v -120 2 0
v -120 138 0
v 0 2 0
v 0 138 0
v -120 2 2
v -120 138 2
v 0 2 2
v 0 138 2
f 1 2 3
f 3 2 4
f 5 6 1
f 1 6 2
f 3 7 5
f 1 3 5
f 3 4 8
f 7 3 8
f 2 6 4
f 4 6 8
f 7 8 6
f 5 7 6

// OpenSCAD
// file: ../pi_mount.scad
module Standoff(h, r1, r2){
  difference() {
    cylinder(h=h, r=r1, $fn=50);
    cylinder(h=h+0.01, r=r2, $fn=50);
  }
}

module PiMount(){
  cube([85, 56, 1]);
  translate([24.05, 16.55, 1]) Standoff(6, 3, 1.5);
  translate([78.55, 44.95, 1]) Standoff(6, 3, 1.5);
}

module RelayMount(height){
  cube([75, 55, 1]);
  inner = 1.4;
  outer = 3;
  translate([3, 3, 1]) Standoff(height, outer, inner);
  translate([72, 3, 1]) Standoff(height, outer, inner);
  translate([3, 52, 1]) Standoff(height, outer, inner);
  translate([72, 52, 1]) Standoff(height, outer, inner);
}

module BarrierStripMount(depth){
  translate([5, 11, -depth]) cylinder(h=depth+0.2, r=2, $fn=50);
  translate([120, 11, -depth]) cylinder(h=depth+0.2, r=2, $fn=50);
}

translate([-62.5, -11, 0]) difference(){
  BarrierStripMount(depth=1.5);
}
// file: ../outlet.scad
module OutletMount(depth, height) {
  translate([0, 0, -depth]){
    cylinder(h=depth+0.1, r=1.25, $fn=50);
    translate([0, height, 0]) cylinder(h=depth+0.1, r=1.25, $fn=50);
  }
}

module OutletsMount(n_outlets, spacing, outlet_depth, outlet_height){
  for (x = [0:spacing:(n_outlets - 1) * spacing]){
    translate([x, 0, 0]) OutletMount(depth=outlet_depth, height=outlet_height);
  }
}

rotate([90, 0, 0]) difference(){
  translate([-50, -50, -1]) cube([2000, 2000, 1]);
  color("blue") OutletsMount(n_outlets=4, spacing=47, outlet_depth=2, outlet_height=85);
}
// file: ../rat_trap.scad
use <outlet.scad>
use <pi_mount.scad>

module RatTrapBox(length=215, width=140, height=120, thickness=2){
  union() {
    BottomFace(length=length-thickness*2, width=width-thickness*2, thickness=thickness); 
    FrontFace(length=length, height=height, thickness=thickness, hole_length=190, hole_height=80);
    RearFace(length=length, height=height, box_width=width, thickness=thickness);
    LeftFace(width=width-thickness*2, height=height, thickness=thickness);
    RightFace(width=width-thickness*2, height=height, thickness=thickness, box_length=length);
  }
}

module FrontFace(length, height, thickness, hole_length, hole_height){
  difference() {
    cube([length, thickness, height]);
    // Make the hole
    translate([(length-hole_length)/2, -0.05, (height-hole_height)/2]) cube([hole_length, thickness+0.1, hole_height]);
    // Make outlet screw ports
    color("blue") translate([(length-141)/2, 0, (height-85)/2]){
      rotate([90, 0, 0]){
        OutletsMount(n_outlets=4, spacing=47, outlet_depth=20, outlet_height=85);
      }
    }
  }
}

module RearFace(length, height, box_width, thickness){
  translate([0, box_width-thickness, 0]){
    difference(){
      cube([length, thickness, height]);
      translate([length/2, -0.05, thickness + 10]){
        rotate([-90, 0, 0]) cylinder(h=thickness+0.1, r=5);
      }
    }
    translate([(length-85)/2 + 85, 0.99, (height-56)/2 + 56 + 10]){
      rotate([-90, 0, 180]) color("green") PiMount();
    }
  }
  
}

module BottomFace(length, width, thickness){
  translate([thickness, thickness, 0]){
  difference(){
    cube([length, width, thickness]);
    translate([(length-125)/2, 25, thickness]){
      color("orange") BarrierStripMount(depth=1.5);
    }
  }
  translate([(length-75)/2, (width-55)/2 + 10, thickness]){
    color("red") RelayMount(height=20);
  }
  }
}

module LeftFace(width, height, thickness){
  translate([0, thickness, 0]){
    cube([thickness, width, height]);
  }
}

module RightFace(width, height, thickness, box_length){
  translate([box_length-thickness, thickness, 0]){
    cube([thickness, width, height]);
    translate([0, width/2, (height-85)/2]){
      color("purple") rotate([0, -90, 0]) Standoff(h=10, r1=3, r2=1.25);
    }
    translate([0, width/2, height - (height-85)/2]){
      color("purple") rotate([0, -90, 0]) Standoff(h=10, r1=3, r2=1.25);
    }
  }
}

translate([-112.5, -75, -60]) RatTrapBox();
// main file
use <../rat_trap.scad>

rotate([0, -90, 0]) LeftFace(width=136, height=120, thickness=2);
